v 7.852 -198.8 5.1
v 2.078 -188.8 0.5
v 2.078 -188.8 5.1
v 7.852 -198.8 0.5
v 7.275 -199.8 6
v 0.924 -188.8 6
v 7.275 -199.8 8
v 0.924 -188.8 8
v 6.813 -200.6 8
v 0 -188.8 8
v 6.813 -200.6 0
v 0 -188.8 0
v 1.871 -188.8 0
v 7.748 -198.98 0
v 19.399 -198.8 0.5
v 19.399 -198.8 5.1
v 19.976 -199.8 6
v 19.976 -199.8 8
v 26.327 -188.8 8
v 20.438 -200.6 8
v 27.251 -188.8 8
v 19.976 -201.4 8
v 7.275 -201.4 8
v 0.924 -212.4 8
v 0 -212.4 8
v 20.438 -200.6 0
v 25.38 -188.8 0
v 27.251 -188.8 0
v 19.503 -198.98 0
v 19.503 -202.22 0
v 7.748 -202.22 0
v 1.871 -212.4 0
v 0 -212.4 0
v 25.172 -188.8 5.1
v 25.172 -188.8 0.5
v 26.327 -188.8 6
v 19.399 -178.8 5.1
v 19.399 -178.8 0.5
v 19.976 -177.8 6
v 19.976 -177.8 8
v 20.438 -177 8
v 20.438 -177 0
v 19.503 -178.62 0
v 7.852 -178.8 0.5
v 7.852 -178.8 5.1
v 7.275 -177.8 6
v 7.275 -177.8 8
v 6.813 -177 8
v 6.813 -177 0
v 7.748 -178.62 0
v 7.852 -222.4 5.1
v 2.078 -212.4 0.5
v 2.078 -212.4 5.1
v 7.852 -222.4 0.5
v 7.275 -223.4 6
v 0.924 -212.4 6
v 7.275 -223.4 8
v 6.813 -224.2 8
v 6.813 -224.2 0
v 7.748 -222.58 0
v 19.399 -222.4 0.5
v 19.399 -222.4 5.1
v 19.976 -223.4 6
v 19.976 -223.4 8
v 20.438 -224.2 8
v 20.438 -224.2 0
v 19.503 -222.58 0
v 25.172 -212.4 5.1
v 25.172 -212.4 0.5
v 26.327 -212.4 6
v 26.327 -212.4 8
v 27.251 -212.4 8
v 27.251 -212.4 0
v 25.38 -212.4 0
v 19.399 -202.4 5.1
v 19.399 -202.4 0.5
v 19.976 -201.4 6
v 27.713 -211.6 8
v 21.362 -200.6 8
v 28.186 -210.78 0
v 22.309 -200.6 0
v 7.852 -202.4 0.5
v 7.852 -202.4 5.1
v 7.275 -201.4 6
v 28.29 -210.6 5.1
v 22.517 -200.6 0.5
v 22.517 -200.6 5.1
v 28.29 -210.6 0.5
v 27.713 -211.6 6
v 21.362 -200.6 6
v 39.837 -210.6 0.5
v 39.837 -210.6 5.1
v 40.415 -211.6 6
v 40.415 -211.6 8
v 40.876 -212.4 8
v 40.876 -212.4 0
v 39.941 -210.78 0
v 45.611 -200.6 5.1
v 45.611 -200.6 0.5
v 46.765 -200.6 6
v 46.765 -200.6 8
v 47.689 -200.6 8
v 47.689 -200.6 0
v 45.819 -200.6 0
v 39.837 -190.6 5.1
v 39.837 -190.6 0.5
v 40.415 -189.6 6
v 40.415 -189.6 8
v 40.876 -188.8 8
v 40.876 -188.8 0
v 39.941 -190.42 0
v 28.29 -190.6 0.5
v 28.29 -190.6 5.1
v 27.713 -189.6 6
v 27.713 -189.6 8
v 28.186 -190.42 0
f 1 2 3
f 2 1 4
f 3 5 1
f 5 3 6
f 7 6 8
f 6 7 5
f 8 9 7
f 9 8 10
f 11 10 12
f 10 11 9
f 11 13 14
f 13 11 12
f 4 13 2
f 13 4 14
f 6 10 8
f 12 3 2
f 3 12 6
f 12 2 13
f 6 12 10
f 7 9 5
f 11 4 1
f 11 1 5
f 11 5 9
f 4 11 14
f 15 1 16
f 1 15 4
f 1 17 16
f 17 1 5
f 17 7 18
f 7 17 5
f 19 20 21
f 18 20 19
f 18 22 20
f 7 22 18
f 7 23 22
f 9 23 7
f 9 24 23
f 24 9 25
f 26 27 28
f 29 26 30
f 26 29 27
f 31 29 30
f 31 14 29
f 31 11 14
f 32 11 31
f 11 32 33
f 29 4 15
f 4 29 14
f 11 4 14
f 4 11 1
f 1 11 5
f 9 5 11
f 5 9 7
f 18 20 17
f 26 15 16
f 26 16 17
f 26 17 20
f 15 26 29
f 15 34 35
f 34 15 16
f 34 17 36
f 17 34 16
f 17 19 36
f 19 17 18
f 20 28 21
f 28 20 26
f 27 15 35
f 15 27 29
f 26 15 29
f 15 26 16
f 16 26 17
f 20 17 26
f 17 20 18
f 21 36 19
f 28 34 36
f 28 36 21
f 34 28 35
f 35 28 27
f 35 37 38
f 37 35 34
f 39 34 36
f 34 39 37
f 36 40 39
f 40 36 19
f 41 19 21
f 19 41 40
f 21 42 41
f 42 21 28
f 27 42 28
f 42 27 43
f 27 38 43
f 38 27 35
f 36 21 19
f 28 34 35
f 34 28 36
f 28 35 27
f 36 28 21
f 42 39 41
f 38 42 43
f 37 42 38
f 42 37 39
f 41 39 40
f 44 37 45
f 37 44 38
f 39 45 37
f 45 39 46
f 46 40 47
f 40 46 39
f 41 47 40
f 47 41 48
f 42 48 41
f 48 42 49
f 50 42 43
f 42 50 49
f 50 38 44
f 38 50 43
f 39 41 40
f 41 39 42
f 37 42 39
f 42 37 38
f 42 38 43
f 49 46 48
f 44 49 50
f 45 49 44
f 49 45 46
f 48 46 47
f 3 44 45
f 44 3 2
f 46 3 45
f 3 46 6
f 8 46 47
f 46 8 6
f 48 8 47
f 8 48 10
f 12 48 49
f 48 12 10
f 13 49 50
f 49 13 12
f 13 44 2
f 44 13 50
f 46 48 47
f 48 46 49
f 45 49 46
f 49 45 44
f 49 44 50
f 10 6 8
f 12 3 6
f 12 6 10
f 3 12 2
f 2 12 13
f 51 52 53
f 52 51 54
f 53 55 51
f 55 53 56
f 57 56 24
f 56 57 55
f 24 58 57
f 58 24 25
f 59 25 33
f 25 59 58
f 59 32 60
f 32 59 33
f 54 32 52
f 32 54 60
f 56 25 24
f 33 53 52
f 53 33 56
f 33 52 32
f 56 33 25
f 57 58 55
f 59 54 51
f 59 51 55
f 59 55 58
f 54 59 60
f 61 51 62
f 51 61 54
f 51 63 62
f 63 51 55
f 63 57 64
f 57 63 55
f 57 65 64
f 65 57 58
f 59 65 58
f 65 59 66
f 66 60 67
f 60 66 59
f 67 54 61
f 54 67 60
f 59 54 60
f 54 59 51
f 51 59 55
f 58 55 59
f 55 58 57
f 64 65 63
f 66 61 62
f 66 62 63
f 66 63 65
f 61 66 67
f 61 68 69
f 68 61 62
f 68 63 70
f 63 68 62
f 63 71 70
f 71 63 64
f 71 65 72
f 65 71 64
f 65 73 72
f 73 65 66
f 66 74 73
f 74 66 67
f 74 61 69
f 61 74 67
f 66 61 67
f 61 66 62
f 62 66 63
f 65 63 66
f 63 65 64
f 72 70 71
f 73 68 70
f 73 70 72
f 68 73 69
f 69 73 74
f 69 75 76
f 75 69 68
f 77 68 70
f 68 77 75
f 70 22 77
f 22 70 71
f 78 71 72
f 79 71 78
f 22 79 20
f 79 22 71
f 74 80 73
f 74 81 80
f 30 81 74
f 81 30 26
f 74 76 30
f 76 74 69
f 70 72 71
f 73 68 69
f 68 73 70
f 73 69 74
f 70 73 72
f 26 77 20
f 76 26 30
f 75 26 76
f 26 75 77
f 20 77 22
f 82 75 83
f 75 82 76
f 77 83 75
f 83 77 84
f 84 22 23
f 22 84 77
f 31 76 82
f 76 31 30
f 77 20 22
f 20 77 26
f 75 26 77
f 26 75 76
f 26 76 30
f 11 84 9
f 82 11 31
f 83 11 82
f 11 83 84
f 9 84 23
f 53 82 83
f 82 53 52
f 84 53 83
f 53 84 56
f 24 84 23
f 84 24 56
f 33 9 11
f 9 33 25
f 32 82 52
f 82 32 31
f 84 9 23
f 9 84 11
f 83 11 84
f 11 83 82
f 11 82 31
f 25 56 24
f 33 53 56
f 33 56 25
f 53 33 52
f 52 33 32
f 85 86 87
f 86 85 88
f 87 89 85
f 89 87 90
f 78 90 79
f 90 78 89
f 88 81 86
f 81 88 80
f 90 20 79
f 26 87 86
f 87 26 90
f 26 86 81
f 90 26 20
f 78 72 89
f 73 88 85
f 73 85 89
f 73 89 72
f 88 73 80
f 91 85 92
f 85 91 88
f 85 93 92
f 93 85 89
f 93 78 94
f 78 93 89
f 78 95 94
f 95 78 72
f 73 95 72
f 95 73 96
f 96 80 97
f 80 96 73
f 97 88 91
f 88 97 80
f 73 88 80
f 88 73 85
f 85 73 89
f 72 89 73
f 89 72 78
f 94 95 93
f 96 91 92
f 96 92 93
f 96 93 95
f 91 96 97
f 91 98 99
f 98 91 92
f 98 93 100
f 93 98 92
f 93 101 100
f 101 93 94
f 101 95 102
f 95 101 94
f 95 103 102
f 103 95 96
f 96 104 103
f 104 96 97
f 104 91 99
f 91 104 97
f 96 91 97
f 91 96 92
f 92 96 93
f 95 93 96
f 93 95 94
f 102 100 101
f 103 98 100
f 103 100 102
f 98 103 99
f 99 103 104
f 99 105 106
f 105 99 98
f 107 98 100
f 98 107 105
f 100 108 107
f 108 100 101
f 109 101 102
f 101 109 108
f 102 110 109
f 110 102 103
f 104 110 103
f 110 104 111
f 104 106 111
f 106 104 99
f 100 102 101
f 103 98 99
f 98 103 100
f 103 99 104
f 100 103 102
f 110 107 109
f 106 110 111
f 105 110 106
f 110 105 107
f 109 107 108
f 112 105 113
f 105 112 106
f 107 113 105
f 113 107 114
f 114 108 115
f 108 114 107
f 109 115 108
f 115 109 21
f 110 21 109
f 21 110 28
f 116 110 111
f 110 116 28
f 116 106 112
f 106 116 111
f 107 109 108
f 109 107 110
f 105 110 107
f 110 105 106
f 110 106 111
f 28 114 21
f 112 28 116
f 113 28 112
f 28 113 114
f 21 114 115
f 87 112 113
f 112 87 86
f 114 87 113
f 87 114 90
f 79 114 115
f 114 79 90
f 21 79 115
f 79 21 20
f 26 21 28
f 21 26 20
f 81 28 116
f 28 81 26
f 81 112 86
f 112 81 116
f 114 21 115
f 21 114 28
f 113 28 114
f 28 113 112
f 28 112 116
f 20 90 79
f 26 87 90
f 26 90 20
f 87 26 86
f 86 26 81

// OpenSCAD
/*[ Hex unit size ]*/

//Depth of the grid
depth = 8;
//Width of the hexagon's hole (flat side to flat side)
hole_width = 20;
//Thickness of the wall forming each hexagon
wall_thickness = 1.8;

/*[ Grid size settings ]*/
max_grid_width=100;
max_grid_height=100;

/*[ Grid shape ]*/
//If checked, ignores custom column sizes and fills grid to maximum size.
fill=false;
flip_staggering=false;
//Amount of hexagons per column. Each entry defines a one column, where the number specifies the amount of hex units that will be generated for the respective column. (Ignored if "fill" is checked)
//columns=[ 9, 10, 9, 10, 9, 10, 9, 10, 9,];
//columns=[ 9, 10, 9, 10, 9, 10, 9, 10, 9, 10];
columns=[10, 9, ];
include_offsets=false;
//Optional: Offset for each column. This will ignore grid size limits.
column_offsets=[0,-2,-3,-1,0,2,4];
include_gaps=true;
//Optional: Gaps for each column. *NOTE: Change these values in the code. Seems like 2D vector parameters aren't supported by the parameter editor and are always overwritten by the defaults.
column_gaps=[
             [1,2,3,4,5,6,7,8],
             [1,2,3,4,5,6,7,8],
//             [1,2,6,7,8,9], 
//             [1,2,3,6,7,8,9,10], 
//             [1,2,3,6,7,8,9],
//             [1,2,3,4,8,9,10],
//             [1,2,3,4,5,8,9],
//             [1,2,3,4,5,6,9,10],
//             [1,2,3,4,5,6],
             ];

/*[ Flat edges ]*/
edge_left = false;
edge_top = true;
edge_right = false;
edge_bottom = false;


//Calculated global variables
//Hexagon dimensions
hex_inner_r = hole_width/sqrt(3); //Inner radius/side length (center to point)
hex_h=hole_width+wall_thickness*2; //Outer side to side distance
hex_s=hex_h/sqrt(3); //Outer radius/side length 
hex_d=2*hex_s; //Outer diameter (point to point)
hex_t=hex_s/2;
//Grid dimensions
max_grid_hexagons_x = fill? floor(max_grid_width/(hex_d-hex_t) +(edge_left?0.5:0) +(edge_right?0.5:0)): len(columns);
max_grid_hexagons_y = fill? floor(max_grid_height/hex_h +(edge_top?0.5:0) +(edge_bottom?0.5:0)): max(columns);
max_grid_hexagons_y_lo = fill? floor(max_grid_height/hex_h - 0.5 +(edge_top?0.5:0) +(edge_bottom?0.5:0)): (max(columns) - 0.5);
total_width = max_grid_hexagons_x * (hex_d-hex_t) + hex_t;
total_height = hex_h*max(max_grid_hexagons_y - 0.5, max_grid_hexagons_y_lo);


translate([edge_left?0:hex_s, edge_top?0:-hex_h/2, 0])
grid(columns, include_offsets?column_offsets:[], include_gaps?column_gaps:[], depth, hole_width, wall_thickness, fill);


module grid(cols, offsets, gaps, height, hole_width, wall_width, fill){    
    for(hcol = [0:fill?max_grid_hexagons_x-1:(len(cols)-1)]){
        for(hrow = [0:(fill?(max_grid_hexagons_y-1):(cols[hcol]-1))]) {
            skip = hcol<len(gaps) && len(search(hrow+1, gaps[hcol])) > 0;          
            if(!skip){
                offset_value=hcol>len(offsets)-1?0:offsets[hcol];
                
                lo = (hcol+(flip_staggering?1:0))%2;
                x = (hex_d-hex_t)*hcol;
                y = -(hex_h)*(hrow + offset_value + lo/2);                
                
                if(hcol<max_grid_hexagons_x && hrow<(lo==0?max_grid_hexagons_y:max_grid_hexagons_y_lo)){
                    left = edge_left && hcol==0;
                    top = edge_top && hrow==0 && hcol%2==(flip_staggering?1:0);
                    right = edge_right && hcol==max_grid_hexagons_x-1;
                    bottom = edge_bottom && hrow+1==(lo==0?max_grid_hexagons_y:max_grid_hexagons_y_lo) && -y+hex_h>total_height+0.001 && -y+hex_h/2<=total_height;
                    translate([x, y, 0]) halfhex(height, hex_s, wall_width, hole_width, left, top, right, bottom);
                }
            }        
        }
    }
}

module halfhex(height, radius, wall_thickness, hole_width, left, top, right, bottom){
    difference(){
        union(){
            hex(height, radius, wall_thickness, hole_width);
            if(left) translate([0, hex_h/2, 0]) wall(depth, wall_thickness, hex_h);
            if(top) translate([hex_d/2, 0, 0]) rotate([0,0,-90]) wall(depth, wall_thickness, hex_d);
            if(right) translate([0, -hex_h/2, 0]) rotate([0,0,180]) wall(depth, wall_thickness, hex_h);
            if(bottom) translate([-hex_d/2, 0, 0]) rotate([0,0,90]) wall(depth, wall_thickness, hex_d);
        }
        if(left) translate([-hex_d/2, -hex_h, 0]) cube([hex_d/2, 2*hex_h, depth]);
        if(top) translate([-hex_d/2, 0, 0]) cube([hex_d, hex_h, depth]);
        if(right) translate([0, -hex_h, 0]) cube([hex_d/2, 2*hex_h, depth]);
        if(bottom) translate([-hex_d/2, -hex_h, 0]) cube([hex_d, hex_h, depth]);
    }
}

module hex(height, radius, wall_thickness, hole_width){
    for(i=[0:5]){
        rotate([0,0,i*60+30])
        translate([-hole_width/2-wall_thickness, radius/2, 0])
        wall(height, wall_thickness, radius);
    }
}

module wall(height, wall_thickness, length){
    hmax=height;
    hmin=5.1;
    hd=2;
    tmax=wall_thickness;
    tmin=wall_thickness-1;   
    ft = 0.18;//fillet thickness
    fh = 0.5;//fillet height
    color("white")
    difference(){
        color([0,0,1])
        rotate([90,0,0])
            linear_extrude(length)   
            polygon([[0,0], [0,hmax], [tmin,hmax], [tmin,hmax-hd], [tmax,hmin], [tmax,fh], [tmax-ft,0]]);
        //Fillet
        rotate([0,0,-30])
            cube([4*tmax, 2*tmax, hmax]);
        mirror([0,1,0])
            translate([0,length,0])
            rotate([0,0,-30])
            cube([4*tmax, 2*tmax, hmax]);
    }
}
